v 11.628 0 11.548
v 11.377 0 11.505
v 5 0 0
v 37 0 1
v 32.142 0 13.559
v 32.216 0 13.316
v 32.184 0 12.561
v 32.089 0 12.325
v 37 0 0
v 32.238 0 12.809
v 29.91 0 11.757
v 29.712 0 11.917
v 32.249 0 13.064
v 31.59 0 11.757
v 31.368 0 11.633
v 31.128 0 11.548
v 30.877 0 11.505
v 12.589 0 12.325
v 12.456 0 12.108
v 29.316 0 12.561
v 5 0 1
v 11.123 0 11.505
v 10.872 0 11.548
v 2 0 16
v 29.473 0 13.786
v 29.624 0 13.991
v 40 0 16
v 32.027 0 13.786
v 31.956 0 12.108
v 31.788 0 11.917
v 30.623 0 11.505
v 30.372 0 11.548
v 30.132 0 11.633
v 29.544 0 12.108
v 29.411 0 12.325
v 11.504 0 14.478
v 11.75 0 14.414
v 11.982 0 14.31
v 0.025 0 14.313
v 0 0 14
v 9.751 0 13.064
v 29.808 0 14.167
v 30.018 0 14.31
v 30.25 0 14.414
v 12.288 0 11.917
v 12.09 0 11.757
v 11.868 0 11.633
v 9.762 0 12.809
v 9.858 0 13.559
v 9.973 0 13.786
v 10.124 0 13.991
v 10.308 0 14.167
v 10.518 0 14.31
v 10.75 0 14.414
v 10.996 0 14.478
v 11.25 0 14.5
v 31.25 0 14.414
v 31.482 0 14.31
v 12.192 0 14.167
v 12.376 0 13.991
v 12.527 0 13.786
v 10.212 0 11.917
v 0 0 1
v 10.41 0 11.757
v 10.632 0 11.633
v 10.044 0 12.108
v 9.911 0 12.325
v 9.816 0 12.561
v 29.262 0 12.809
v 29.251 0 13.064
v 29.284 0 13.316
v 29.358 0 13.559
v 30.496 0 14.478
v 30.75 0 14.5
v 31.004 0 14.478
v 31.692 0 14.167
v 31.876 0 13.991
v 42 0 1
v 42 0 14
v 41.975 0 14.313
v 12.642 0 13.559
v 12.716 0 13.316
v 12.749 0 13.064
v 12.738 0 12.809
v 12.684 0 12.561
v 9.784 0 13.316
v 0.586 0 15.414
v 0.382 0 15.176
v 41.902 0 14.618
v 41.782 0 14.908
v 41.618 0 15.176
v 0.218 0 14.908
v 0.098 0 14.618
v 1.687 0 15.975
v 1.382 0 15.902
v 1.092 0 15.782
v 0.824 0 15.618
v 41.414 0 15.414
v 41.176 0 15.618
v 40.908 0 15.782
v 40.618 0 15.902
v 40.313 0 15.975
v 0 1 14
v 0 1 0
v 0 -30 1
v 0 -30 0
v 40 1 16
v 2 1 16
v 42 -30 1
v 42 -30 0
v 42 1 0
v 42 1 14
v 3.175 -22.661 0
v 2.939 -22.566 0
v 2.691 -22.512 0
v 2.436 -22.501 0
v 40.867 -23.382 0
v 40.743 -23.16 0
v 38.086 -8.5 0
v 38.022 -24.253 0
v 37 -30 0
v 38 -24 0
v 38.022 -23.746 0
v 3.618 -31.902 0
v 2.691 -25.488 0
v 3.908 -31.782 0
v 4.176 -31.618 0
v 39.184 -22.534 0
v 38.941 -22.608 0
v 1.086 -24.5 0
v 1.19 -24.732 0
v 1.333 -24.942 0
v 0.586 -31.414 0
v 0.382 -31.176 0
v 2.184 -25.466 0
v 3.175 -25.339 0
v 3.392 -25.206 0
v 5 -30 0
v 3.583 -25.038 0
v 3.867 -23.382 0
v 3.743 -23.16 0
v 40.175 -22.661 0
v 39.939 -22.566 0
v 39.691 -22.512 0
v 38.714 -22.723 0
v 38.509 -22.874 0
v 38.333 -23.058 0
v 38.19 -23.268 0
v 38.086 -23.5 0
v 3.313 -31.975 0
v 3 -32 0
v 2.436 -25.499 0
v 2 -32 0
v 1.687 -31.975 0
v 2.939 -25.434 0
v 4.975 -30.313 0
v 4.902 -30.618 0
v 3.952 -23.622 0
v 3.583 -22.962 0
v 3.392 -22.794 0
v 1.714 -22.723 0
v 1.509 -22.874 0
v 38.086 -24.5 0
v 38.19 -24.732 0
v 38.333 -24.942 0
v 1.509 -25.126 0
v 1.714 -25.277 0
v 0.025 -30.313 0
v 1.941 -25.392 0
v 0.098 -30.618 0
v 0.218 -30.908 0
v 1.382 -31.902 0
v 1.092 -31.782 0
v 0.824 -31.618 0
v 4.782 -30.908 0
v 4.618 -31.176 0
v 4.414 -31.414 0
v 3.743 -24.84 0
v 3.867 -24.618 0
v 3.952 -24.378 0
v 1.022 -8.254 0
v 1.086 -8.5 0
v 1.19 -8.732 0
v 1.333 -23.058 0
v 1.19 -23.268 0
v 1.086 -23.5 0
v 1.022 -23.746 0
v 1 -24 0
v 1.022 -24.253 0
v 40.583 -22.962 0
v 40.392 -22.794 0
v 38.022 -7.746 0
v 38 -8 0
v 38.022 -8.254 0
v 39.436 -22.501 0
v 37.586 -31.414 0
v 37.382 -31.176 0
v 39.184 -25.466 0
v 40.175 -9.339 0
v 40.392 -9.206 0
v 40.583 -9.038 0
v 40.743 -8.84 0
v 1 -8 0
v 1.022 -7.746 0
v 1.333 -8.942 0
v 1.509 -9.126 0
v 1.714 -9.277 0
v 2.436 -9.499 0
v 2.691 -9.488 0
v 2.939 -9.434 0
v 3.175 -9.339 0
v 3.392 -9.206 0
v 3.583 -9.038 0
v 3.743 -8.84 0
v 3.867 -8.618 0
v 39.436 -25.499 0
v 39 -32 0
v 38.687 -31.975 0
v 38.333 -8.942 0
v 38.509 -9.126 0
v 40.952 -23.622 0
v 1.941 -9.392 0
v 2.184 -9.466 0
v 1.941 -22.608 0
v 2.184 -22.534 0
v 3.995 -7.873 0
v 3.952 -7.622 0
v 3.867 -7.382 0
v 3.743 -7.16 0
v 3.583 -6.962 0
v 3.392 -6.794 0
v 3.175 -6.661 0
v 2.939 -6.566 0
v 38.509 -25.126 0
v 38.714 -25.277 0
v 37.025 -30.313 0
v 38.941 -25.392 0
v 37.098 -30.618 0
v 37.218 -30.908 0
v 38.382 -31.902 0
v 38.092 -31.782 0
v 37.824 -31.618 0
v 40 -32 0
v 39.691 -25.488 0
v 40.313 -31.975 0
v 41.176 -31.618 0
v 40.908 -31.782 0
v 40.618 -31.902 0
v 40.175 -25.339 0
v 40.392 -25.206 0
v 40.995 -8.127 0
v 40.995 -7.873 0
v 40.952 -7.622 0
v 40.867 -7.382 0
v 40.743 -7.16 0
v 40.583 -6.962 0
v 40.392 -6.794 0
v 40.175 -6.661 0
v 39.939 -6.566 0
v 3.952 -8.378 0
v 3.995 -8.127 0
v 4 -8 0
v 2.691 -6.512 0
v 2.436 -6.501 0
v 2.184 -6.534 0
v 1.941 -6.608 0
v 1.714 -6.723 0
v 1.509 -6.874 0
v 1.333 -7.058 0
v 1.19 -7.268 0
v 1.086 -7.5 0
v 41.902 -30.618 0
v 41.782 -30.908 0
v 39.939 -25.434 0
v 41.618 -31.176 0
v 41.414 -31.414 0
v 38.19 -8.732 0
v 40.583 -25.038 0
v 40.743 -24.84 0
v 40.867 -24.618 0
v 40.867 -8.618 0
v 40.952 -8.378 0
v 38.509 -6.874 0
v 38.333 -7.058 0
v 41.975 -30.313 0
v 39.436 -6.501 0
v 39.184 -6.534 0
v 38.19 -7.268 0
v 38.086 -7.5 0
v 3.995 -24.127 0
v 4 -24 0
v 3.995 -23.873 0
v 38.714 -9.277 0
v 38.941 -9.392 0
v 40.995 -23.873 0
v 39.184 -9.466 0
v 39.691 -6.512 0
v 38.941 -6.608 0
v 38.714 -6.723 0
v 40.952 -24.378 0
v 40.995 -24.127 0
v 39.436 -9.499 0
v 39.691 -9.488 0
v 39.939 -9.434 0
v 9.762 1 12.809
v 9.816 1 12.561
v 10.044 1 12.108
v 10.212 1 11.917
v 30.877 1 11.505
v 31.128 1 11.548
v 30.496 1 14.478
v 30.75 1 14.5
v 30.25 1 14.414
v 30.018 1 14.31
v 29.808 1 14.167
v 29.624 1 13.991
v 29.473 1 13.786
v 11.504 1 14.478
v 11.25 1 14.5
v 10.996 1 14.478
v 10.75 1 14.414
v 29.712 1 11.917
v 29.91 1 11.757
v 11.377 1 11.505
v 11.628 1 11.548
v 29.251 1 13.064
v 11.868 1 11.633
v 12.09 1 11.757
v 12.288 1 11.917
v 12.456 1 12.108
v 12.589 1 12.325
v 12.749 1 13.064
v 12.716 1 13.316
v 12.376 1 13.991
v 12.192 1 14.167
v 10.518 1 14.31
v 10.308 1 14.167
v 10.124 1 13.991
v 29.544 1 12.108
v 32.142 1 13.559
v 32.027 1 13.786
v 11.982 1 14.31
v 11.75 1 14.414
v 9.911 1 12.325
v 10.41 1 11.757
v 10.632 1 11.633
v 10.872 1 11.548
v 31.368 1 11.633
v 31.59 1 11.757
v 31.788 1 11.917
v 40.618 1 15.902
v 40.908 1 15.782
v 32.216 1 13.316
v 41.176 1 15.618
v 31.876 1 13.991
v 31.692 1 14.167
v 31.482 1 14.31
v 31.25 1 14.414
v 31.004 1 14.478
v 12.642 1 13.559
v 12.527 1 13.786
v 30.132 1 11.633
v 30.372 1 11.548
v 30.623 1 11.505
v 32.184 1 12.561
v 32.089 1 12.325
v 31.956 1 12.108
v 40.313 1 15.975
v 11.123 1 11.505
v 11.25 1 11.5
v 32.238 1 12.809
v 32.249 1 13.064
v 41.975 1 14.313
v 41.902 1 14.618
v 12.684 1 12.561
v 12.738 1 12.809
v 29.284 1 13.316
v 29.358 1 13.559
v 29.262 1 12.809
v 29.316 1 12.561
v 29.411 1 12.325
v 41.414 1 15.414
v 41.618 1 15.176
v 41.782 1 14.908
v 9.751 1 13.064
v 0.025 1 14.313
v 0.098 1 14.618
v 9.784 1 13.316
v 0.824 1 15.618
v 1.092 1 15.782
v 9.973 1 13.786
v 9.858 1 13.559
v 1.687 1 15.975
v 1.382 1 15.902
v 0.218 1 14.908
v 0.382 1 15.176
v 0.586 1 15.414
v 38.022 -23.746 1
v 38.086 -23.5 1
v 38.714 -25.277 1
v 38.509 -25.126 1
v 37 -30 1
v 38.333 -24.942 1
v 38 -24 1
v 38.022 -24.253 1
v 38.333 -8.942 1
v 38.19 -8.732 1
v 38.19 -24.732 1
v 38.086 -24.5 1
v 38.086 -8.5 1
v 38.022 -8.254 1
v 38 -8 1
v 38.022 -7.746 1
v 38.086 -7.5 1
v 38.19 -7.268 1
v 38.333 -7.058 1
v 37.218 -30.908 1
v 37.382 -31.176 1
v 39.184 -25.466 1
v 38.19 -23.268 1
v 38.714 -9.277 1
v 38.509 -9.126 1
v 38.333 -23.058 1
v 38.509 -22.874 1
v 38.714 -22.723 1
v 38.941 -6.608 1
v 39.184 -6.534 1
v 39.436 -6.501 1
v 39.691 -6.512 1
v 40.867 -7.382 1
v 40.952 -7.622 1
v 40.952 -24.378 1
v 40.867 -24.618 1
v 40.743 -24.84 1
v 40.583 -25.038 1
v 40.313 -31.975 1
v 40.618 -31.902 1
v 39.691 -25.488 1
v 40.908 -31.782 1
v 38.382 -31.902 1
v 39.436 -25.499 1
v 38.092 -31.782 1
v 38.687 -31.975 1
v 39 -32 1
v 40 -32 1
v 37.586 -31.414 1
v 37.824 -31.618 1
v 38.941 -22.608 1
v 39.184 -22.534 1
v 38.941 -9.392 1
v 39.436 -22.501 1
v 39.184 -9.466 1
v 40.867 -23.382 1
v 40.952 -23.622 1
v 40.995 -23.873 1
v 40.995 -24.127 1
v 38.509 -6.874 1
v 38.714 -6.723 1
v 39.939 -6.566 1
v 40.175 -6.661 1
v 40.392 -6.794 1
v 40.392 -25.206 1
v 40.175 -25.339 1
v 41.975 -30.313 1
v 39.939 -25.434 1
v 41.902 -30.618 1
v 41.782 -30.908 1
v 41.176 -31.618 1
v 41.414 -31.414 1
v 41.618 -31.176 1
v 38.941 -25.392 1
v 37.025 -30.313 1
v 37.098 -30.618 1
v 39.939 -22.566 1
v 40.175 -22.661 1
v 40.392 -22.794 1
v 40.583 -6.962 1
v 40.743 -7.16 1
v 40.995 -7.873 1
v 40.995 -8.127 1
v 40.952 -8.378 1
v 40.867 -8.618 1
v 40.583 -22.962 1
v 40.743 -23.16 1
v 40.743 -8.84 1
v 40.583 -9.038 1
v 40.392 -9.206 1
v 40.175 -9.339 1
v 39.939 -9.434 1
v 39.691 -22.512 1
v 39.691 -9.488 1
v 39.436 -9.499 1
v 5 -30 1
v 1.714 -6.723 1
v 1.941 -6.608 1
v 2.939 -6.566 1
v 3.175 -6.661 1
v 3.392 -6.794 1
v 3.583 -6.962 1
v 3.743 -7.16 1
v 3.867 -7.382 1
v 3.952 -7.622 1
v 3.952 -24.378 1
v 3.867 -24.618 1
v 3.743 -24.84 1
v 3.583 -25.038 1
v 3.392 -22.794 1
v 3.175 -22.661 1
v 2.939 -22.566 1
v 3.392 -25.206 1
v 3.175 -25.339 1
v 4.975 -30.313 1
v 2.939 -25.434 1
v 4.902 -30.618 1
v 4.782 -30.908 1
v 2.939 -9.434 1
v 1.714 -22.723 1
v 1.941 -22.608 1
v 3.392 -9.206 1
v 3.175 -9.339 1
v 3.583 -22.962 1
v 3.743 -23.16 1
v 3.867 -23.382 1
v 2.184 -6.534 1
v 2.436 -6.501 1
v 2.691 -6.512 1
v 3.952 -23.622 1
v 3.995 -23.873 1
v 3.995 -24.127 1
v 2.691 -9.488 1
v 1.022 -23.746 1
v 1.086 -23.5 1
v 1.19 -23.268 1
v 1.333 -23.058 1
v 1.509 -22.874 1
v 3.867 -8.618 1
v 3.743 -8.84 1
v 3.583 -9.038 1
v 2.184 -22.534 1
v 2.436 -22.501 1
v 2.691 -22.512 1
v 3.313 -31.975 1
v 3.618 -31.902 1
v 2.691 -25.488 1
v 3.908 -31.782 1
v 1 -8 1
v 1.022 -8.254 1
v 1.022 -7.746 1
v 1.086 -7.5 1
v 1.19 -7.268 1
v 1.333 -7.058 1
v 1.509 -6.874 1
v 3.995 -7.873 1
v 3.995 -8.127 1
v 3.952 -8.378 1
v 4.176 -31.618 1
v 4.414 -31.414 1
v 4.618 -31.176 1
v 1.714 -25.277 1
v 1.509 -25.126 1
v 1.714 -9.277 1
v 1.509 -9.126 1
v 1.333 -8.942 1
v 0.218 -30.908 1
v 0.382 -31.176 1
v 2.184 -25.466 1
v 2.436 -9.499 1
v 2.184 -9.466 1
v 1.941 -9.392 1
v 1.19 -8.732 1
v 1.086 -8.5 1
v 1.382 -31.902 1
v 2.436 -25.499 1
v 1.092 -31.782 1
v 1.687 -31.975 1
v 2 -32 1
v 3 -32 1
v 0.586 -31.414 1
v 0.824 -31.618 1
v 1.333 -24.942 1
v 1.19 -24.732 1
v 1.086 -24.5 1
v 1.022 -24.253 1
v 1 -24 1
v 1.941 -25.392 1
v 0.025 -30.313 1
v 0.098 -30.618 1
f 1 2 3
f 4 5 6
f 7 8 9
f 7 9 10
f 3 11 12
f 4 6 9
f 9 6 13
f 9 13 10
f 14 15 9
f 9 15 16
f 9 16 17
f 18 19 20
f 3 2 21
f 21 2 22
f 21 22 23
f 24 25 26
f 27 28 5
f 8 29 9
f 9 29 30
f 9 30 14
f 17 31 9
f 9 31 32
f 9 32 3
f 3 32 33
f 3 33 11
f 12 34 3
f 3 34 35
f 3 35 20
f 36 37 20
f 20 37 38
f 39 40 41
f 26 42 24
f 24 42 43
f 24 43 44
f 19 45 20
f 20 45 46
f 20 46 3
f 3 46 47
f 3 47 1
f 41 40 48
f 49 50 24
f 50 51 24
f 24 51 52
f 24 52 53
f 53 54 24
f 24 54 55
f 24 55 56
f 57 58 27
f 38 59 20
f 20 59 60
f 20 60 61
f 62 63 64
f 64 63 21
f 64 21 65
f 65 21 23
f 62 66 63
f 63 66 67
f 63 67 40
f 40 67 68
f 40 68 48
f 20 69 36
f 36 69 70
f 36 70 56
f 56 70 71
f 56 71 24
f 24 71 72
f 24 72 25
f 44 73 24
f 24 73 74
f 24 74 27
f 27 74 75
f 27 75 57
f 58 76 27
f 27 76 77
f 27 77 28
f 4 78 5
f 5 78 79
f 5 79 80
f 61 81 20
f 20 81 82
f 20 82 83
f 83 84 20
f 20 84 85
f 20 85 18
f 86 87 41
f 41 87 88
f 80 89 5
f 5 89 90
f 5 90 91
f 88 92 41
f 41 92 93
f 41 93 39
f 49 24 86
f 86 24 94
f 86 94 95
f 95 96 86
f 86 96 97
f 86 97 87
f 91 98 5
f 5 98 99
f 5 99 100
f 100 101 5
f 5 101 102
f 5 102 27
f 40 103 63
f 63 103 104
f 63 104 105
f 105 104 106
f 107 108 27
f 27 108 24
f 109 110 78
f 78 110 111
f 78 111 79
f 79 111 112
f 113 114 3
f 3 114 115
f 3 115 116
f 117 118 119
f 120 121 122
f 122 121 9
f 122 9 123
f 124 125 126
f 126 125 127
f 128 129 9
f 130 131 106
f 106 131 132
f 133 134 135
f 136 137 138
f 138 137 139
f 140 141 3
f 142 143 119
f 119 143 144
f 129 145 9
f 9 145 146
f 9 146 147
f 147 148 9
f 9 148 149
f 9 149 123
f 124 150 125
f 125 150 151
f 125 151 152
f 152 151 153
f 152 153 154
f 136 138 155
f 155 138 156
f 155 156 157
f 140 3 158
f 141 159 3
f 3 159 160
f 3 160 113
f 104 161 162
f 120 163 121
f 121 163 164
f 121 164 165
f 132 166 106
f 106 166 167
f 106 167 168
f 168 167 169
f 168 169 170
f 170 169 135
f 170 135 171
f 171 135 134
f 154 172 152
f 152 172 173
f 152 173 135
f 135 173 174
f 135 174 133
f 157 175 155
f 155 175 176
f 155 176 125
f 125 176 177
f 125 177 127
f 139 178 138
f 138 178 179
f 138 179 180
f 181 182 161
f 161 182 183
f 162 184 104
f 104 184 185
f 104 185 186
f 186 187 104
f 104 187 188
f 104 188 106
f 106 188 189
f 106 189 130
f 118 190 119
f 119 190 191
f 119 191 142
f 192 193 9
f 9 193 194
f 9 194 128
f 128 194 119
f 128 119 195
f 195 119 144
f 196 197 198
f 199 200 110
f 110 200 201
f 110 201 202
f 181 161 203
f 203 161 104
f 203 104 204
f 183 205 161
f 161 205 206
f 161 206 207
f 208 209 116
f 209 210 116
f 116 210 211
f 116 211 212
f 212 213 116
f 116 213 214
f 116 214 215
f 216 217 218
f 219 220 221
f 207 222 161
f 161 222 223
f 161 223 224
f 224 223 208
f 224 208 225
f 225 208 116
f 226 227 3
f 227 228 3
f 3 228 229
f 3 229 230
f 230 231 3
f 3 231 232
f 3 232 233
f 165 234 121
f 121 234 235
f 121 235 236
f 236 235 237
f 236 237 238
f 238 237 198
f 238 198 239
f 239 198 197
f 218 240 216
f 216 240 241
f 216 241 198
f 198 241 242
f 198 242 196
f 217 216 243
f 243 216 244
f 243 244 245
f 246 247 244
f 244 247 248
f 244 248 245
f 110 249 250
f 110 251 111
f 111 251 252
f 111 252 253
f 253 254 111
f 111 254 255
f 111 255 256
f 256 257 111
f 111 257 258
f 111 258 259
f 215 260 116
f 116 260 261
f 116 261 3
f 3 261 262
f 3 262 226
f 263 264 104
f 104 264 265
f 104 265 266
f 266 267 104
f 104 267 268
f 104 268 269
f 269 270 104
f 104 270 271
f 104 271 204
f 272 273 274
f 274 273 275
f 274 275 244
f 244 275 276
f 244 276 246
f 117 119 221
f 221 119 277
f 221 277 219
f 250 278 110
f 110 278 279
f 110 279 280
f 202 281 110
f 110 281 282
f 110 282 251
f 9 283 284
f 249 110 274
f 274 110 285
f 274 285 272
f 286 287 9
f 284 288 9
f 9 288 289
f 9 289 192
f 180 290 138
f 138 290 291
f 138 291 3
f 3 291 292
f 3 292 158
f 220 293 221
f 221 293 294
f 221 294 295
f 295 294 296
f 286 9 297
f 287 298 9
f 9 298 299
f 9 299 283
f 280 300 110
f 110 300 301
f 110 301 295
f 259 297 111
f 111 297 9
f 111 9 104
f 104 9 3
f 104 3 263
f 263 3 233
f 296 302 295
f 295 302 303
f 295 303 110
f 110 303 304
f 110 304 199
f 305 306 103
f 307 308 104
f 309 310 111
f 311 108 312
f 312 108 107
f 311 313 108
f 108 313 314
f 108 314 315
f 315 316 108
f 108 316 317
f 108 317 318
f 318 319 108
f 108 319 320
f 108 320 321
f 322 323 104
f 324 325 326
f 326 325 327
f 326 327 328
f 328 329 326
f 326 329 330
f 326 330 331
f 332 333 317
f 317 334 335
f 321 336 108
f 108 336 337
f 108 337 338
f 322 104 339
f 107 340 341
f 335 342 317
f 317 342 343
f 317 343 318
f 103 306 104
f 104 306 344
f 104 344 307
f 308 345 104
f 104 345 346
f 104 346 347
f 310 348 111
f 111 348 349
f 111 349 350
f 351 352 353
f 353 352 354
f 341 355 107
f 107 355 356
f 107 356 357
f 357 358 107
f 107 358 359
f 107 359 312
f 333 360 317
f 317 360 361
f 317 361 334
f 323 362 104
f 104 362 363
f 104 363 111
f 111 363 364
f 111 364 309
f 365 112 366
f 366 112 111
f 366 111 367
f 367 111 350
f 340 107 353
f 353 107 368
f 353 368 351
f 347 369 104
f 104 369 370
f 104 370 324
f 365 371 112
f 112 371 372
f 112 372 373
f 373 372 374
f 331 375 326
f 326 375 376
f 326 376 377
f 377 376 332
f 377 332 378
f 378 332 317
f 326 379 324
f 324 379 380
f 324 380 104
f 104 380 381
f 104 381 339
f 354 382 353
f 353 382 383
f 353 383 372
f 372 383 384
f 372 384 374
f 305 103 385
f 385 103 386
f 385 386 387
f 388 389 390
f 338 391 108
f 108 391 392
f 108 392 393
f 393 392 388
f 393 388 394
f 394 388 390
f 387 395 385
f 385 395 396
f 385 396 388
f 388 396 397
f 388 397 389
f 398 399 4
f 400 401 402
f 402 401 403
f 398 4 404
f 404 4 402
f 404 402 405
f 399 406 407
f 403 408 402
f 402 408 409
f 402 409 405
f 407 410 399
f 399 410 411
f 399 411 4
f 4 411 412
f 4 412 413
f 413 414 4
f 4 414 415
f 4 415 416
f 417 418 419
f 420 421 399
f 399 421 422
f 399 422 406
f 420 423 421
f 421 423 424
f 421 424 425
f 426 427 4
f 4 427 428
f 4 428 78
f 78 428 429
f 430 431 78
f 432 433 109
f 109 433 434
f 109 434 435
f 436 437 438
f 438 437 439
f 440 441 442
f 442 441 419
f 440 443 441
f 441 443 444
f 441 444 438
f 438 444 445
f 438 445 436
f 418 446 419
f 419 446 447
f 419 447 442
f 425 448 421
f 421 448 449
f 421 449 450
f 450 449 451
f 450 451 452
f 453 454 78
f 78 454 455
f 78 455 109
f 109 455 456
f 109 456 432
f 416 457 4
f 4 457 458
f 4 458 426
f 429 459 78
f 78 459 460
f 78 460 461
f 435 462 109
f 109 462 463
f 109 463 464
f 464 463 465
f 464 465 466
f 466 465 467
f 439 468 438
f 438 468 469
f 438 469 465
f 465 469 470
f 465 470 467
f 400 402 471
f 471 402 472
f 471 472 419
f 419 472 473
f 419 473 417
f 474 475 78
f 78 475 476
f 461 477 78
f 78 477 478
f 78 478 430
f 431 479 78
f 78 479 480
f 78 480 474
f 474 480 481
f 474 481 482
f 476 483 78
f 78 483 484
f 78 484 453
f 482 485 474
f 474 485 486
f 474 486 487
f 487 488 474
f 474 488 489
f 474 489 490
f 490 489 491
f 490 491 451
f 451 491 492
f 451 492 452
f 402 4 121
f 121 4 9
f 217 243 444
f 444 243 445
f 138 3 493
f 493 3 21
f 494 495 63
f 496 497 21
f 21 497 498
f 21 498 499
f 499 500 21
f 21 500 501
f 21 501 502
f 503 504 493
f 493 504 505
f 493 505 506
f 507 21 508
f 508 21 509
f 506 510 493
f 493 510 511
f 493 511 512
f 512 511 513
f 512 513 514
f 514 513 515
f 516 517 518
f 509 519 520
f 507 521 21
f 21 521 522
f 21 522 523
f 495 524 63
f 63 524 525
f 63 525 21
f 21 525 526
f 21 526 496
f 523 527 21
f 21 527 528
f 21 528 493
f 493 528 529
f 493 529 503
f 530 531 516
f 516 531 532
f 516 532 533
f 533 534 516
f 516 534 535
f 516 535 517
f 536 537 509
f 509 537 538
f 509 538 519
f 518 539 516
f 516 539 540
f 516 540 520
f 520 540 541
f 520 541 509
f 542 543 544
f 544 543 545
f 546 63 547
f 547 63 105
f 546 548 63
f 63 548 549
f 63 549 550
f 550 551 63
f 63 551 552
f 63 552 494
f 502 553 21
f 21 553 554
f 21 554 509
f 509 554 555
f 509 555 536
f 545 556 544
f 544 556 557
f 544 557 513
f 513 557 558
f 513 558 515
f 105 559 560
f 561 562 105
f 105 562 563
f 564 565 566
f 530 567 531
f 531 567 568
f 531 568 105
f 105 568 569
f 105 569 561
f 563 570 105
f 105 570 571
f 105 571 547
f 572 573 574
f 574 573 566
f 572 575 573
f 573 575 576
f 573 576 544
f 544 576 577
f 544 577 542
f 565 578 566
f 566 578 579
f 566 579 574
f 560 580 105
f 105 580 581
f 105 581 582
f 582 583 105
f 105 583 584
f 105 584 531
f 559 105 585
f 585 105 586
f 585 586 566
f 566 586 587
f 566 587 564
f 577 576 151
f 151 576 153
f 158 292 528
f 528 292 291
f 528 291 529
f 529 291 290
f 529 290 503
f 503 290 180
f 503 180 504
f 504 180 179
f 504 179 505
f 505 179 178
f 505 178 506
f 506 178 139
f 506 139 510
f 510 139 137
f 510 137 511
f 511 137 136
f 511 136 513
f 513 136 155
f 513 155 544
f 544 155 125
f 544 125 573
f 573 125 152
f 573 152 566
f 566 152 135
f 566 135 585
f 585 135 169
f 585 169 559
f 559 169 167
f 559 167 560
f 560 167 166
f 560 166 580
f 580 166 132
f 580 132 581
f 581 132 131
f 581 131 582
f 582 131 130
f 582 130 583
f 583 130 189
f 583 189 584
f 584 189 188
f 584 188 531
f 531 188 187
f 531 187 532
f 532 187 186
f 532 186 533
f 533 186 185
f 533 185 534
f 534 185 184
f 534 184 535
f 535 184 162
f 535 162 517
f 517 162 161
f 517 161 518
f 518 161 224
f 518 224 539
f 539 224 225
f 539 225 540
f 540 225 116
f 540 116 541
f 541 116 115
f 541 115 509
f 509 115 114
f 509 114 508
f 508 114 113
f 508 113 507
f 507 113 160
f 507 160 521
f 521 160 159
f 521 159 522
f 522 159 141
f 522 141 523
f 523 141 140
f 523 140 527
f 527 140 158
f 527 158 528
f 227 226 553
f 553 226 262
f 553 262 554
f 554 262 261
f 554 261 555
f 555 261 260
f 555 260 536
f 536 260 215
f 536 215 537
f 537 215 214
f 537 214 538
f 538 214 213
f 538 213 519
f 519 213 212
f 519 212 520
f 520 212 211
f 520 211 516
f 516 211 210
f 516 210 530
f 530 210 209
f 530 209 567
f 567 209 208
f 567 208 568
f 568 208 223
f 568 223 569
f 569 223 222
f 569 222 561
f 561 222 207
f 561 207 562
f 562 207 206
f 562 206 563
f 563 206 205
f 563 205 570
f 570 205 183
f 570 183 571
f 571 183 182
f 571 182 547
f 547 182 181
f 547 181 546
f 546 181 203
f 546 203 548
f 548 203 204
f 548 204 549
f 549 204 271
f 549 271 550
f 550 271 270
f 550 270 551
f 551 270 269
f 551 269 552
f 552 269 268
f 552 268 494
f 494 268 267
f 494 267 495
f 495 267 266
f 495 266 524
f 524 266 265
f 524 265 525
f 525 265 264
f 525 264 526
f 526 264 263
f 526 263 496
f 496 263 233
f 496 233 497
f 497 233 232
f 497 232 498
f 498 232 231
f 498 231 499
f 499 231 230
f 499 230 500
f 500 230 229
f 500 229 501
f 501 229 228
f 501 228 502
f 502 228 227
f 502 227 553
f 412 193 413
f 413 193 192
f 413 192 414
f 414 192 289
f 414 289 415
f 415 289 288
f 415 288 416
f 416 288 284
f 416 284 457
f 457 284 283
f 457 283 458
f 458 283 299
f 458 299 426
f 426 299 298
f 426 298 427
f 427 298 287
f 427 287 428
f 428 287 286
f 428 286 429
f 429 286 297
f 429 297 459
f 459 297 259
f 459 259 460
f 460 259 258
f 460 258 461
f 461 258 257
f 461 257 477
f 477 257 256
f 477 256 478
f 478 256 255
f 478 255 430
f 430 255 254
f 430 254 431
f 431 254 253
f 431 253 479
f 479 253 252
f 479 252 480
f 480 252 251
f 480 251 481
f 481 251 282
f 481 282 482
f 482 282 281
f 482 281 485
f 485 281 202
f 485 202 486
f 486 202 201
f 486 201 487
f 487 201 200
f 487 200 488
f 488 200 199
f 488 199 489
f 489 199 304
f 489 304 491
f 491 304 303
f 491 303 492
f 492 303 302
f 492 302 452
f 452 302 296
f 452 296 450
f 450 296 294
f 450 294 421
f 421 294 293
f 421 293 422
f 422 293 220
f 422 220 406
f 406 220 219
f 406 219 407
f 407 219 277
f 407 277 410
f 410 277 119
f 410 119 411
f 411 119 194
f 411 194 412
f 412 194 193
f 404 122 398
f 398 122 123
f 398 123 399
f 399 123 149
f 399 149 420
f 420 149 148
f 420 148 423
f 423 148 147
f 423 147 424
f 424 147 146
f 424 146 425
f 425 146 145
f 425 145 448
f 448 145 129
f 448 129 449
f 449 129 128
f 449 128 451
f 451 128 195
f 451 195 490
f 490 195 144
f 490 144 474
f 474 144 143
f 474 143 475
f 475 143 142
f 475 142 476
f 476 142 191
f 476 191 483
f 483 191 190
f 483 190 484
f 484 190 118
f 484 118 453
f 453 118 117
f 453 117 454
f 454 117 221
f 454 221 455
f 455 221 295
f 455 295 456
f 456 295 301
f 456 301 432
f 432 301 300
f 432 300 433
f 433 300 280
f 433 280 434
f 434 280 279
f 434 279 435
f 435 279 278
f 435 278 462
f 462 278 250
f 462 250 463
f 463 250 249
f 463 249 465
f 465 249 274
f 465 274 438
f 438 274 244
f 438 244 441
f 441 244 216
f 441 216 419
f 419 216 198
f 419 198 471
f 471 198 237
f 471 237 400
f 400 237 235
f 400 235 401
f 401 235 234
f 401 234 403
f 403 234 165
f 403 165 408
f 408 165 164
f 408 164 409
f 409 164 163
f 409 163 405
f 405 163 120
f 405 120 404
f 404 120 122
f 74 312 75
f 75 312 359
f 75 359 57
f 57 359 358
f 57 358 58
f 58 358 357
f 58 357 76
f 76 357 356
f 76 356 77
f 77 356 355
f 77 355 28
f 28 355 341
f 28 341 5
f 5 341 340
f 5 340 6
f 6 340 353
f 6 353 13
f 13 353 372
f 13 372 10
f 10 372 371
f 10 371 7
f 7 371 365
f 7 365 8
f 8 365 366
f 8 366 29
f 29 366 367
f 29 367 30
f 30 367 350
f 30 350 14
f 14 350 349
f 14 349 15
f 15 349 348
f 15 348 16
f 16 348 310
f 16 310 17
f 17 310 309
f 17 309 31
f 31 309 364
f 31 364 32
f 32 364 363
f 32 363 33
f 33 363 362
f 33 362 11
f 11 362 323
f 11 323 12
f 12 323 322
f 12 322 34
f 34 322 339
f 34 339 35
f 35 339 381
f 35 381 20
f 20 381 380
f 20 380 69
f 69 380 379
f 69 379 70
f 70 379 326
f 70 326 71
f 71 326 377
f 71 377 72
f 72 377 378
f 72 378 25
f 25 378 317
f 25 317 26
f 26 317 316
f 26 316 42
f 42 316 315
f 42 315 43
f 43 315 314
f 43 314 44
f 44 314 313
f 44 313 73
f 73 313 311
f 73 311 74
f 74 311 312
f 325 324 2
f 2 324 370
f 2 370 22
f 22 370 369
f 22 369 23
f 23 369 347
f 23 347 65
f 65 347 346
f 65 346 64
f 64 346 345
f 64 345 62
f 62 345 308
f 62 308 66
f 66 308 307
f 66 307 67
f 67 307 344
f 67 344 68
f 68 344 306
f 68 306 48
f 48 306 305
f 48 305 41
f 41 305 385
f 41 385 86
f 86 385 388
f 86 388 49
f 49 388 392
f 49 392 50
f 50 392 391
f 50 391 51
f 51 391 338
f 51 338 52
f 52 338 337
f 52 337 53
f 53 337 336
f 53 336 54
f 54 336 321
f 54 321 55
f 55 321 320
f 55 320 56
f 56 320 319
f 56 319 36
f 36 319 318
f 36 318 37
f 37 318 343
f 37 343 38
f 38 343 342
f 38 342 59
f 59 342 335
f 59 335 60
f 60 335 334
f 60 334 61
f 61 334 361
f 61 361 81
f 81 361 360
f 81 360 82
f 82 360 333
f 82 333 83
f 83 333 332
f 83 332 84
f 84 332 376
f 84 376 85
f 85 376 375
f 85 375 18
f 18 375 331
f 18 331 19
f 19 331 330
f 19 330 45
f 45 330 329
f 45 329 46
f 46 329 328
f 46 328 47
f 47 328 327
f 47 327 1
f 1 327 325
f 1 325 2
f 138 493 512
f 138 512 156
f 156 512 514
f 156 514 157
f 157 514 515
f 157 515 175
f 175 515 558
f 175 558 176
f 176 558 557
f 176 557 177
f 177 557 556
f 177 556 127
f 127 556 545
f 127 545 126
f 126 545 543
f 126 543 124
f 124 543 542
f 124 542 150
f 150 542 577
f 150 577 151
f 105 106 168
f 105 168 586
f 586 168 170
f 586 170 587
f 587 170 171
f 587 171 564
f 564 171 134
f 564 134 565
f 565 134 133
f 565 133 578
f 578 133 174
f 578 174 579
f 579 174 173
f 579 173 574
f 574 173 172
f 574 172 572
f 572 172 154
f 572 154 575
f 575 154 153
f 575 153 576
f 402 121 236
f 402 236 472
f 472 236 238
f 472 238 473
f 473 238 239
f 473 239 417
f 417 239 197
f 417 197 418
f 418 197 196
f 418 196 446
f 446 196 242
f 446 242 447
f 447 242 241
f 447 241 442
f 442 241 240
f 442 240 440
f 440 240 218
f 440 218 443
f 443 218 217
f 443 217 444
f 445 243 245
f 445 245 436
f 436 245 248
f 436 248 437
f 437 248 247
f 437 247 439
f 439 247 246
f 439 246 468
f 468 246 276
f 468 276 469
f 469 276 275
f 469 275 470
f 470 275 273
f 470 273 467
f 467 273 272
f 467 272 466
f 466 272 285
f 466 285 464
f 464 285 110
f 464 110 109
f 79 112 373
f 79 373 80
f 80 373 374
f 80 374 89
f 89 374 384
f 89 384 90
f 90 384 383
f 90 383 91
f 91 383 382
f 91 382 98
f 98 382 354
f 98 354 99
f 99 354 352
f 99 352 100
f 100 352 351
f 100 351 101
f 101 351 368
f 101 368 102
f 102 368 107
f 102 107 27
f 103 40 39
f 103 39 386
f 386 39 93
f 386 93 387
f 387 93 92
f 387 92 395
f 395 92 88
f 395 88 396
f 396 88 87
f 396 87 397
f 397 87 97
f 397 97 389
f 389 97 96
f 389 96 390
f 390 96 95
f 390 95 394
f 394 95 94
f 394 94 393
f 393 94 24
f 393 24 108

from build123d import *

# Parameters (mm, degrees)
IR_HOLDER_SKETCH_W        = 42
IR_HOLDER_SKETCH_H        = 16
IR_HOLDER_DEPTH           = 1
ATTACHMENT_SKETCH_W       = 5
ATTACHMENT_SKETCH_H       = 1
ATTACHMENT_TO_BASE_DEPTH  = 32
ATTACHMENT_HOLES_REACH    = 18
ATTACHMENT_HOLES_SKETCH_R = 1.5
IR_HOLES_REACH            = 35
IR_HOLES_SKETCH_R         = 1.5
DONT_CUT_URSELF_R         = 2


with BuildPart() as part:
    # IR Holder Sketch → IR Holder (new body)
    with BuildSketch(Plane(origin=(0, 0, 0), x_dir=(1, 0, 0), z_dir=(0, 1, 0))):
        with Locations((21, -8)):
            Rectangle(IR_HOLDER_SKETCH_W, IR_HOLDER_SKETCH_H)
    extrude(amount=IR_HOLDER_DEPTH)

    # Attachment Sketch → Attachment to Base (add)
    with BuildSketch(Plane.XZ):
        with Locations((39.5, 0.5)):
            Rectangle(ATTACHMENT_SKETCH_W, ATTACHMENT_SKETCH_H)
        with Locations((2.5, 0.5)):
            Rectangle(ATTACHMENT_SKETCH_W, ATTACHMENT_SKETCH_H)
    extrude(amount=ATTACHMENT_TO_BASE_DEPTH)

    # Attachment Holes Sketch → Attachment Holes (cut, up to next)
    with BuildSketch(Plane(origin=(0, 0, 0), x_dir=(-1, 0, 0), z_dir=(0, 0, -1)), mode=Mode.PRIVATE) as attachment_holes_sk1:
        with Locations((-39.5, -8)):
            Circle(ATTACHMENT_HOLES_SKETCH_R)
    attachment_holes_tool1 = extrude(attachment_holes_sk1.sketch, amount=-ATTACHMENT_HOLES_REACH, mode=Mode.PRIVATE) & part.part
    add(attachment_holes_tool1.solids().sort_by_distance((39.5, -8, 0))[0], mode=Mode.SUBTRACT)
    # Attachment Holes Sketch → Attachment Holes (cut, up to next)
    with BuildSketch(Plane(origin=(0, 0, 0), x_dir=(-1, 0, 0), z_dir=(0, 0, -1)), mode=Mode.PRIVATE) as attachment_holes_sk2:
        with Locations((-39.5, -24)):
            Circle(ATTACHMENT_HOLES_SKETCH_R)
    attachment_holes_tool2 = extrude(attachment_holes_sk2.sketch, amount=-ATTACHMENT_HOLES_REACH, mode=Mode.PRIVATE) & part.part
    add(attachment_holes_tool2.solids().sort_by_distance((39.5, -24, 0))[0], mode=Mode.SUBTRACT)
    # Attachment Holes Sketch → Attachment Holes (cut, up to next)
    with BuildSketch(Plane(origin=(0, 0, 0), x_dir=(-1, 0, 0), z_dir=(0, 0, -1)), mode=Mode.PRIVATE) as attachment_holes_sk3:
        with Locations((-2.5, -24)):
            Circle(ATTACHMENT_HOLES_SKETCH_R)
    attachment_holes_tool3 = extrude(attachment_holes_sk3.sketch, amount=-ATTACHMENT_HOLES_REACH, mode=Mode.PRIVATE) & part.part
    add(attachment_holes_tool3.solids().sort_by_distance((2.5, -24, 0))[0], mode=Mode.SUBTRACT)
    # Attachment Holes Sketch → Attachment Holes (cut, up to next)
    with BuildSketch(Plane(origin=(0, 0, 0), x_dir=(-1, 0, 0), z_dir=(0, 0, -1)), mode=Mode.PRIVATE) as attachment_holes_sk4:
        with Locations((-2.5, -8)):
            Circle(ATTACHMENT_HOLES_SKETCH_R)
    attachment_holes_tool4 = extrude(attachment_holes_sk4.sketch, amount=-ATTACHMENT_HOLES_REACH, mode=Mode.PRIVATE) & part.part
    add(attachment_holes_tool4.solids().sort_by_distance((2.5, -8, 0))[0], mode=Mode.SUBTRACT)

    # IR Holes Sketch → IR Holes (cut, up to next)
    with BuildSketch(Plane(origin=(0, 1, 0), x_dir=(1, 0, 0), z_dir=(0, 1, 0)), mode=Mode.PRIVATE) as ir_holes_sk1:
        with Locations((30.75, -13)):
            Circle(IR_HOLES_SKETCH_R)
    ir_holes_tool1 = extrude(ir_holes_sk1.sketch, amount=-IR_HOLES_REACH, mode=Mode.PRIVATE) & part.part
    add(ir_holes_tool1.solids().sort_by_distance((30.75, 1, 13))[0], mode=Mode.SUBTRACT)
    # IR Holes Sketch → IR Holes (cut, up to next)
    with BuildSketch(Plane(origin=(0, 1, 0), x_dir=(1, 0, 0), z_dir=(0, 1, 0)), mode=Mode.PRIVATE) as ir_holes_sk2:
        with Locations((11.25, -13)):
            Circle(IR_HOLES_SKETCH_R)
    ir_holes_tool2 = extrude(ir_holes_sk2.sketch, amount=-IR_HOLES_REACH, mode=Mode.PRIVATE) & part.part
    add(ir_holes_tool2.solids().sort_by_distance((11.25, 1, 13))[0], mode=Mode.SUBTRACT)

    # Dont cut urself
    dont_cut_urself_edges = [part.edges().sort_by_distance(p)[0] for p in [
        (42, -32, 0.5),
        (37, -32, 0.5),
        (5, -32, 0.5),
        (0, -32, 0.5),
        (42, 0.5, 16),
        (0, 0.5, 16),
    ]]
    fillet(dont_cut_urself_edges, radius=DONT_CUT_URSELF_R)


solid = part.part
